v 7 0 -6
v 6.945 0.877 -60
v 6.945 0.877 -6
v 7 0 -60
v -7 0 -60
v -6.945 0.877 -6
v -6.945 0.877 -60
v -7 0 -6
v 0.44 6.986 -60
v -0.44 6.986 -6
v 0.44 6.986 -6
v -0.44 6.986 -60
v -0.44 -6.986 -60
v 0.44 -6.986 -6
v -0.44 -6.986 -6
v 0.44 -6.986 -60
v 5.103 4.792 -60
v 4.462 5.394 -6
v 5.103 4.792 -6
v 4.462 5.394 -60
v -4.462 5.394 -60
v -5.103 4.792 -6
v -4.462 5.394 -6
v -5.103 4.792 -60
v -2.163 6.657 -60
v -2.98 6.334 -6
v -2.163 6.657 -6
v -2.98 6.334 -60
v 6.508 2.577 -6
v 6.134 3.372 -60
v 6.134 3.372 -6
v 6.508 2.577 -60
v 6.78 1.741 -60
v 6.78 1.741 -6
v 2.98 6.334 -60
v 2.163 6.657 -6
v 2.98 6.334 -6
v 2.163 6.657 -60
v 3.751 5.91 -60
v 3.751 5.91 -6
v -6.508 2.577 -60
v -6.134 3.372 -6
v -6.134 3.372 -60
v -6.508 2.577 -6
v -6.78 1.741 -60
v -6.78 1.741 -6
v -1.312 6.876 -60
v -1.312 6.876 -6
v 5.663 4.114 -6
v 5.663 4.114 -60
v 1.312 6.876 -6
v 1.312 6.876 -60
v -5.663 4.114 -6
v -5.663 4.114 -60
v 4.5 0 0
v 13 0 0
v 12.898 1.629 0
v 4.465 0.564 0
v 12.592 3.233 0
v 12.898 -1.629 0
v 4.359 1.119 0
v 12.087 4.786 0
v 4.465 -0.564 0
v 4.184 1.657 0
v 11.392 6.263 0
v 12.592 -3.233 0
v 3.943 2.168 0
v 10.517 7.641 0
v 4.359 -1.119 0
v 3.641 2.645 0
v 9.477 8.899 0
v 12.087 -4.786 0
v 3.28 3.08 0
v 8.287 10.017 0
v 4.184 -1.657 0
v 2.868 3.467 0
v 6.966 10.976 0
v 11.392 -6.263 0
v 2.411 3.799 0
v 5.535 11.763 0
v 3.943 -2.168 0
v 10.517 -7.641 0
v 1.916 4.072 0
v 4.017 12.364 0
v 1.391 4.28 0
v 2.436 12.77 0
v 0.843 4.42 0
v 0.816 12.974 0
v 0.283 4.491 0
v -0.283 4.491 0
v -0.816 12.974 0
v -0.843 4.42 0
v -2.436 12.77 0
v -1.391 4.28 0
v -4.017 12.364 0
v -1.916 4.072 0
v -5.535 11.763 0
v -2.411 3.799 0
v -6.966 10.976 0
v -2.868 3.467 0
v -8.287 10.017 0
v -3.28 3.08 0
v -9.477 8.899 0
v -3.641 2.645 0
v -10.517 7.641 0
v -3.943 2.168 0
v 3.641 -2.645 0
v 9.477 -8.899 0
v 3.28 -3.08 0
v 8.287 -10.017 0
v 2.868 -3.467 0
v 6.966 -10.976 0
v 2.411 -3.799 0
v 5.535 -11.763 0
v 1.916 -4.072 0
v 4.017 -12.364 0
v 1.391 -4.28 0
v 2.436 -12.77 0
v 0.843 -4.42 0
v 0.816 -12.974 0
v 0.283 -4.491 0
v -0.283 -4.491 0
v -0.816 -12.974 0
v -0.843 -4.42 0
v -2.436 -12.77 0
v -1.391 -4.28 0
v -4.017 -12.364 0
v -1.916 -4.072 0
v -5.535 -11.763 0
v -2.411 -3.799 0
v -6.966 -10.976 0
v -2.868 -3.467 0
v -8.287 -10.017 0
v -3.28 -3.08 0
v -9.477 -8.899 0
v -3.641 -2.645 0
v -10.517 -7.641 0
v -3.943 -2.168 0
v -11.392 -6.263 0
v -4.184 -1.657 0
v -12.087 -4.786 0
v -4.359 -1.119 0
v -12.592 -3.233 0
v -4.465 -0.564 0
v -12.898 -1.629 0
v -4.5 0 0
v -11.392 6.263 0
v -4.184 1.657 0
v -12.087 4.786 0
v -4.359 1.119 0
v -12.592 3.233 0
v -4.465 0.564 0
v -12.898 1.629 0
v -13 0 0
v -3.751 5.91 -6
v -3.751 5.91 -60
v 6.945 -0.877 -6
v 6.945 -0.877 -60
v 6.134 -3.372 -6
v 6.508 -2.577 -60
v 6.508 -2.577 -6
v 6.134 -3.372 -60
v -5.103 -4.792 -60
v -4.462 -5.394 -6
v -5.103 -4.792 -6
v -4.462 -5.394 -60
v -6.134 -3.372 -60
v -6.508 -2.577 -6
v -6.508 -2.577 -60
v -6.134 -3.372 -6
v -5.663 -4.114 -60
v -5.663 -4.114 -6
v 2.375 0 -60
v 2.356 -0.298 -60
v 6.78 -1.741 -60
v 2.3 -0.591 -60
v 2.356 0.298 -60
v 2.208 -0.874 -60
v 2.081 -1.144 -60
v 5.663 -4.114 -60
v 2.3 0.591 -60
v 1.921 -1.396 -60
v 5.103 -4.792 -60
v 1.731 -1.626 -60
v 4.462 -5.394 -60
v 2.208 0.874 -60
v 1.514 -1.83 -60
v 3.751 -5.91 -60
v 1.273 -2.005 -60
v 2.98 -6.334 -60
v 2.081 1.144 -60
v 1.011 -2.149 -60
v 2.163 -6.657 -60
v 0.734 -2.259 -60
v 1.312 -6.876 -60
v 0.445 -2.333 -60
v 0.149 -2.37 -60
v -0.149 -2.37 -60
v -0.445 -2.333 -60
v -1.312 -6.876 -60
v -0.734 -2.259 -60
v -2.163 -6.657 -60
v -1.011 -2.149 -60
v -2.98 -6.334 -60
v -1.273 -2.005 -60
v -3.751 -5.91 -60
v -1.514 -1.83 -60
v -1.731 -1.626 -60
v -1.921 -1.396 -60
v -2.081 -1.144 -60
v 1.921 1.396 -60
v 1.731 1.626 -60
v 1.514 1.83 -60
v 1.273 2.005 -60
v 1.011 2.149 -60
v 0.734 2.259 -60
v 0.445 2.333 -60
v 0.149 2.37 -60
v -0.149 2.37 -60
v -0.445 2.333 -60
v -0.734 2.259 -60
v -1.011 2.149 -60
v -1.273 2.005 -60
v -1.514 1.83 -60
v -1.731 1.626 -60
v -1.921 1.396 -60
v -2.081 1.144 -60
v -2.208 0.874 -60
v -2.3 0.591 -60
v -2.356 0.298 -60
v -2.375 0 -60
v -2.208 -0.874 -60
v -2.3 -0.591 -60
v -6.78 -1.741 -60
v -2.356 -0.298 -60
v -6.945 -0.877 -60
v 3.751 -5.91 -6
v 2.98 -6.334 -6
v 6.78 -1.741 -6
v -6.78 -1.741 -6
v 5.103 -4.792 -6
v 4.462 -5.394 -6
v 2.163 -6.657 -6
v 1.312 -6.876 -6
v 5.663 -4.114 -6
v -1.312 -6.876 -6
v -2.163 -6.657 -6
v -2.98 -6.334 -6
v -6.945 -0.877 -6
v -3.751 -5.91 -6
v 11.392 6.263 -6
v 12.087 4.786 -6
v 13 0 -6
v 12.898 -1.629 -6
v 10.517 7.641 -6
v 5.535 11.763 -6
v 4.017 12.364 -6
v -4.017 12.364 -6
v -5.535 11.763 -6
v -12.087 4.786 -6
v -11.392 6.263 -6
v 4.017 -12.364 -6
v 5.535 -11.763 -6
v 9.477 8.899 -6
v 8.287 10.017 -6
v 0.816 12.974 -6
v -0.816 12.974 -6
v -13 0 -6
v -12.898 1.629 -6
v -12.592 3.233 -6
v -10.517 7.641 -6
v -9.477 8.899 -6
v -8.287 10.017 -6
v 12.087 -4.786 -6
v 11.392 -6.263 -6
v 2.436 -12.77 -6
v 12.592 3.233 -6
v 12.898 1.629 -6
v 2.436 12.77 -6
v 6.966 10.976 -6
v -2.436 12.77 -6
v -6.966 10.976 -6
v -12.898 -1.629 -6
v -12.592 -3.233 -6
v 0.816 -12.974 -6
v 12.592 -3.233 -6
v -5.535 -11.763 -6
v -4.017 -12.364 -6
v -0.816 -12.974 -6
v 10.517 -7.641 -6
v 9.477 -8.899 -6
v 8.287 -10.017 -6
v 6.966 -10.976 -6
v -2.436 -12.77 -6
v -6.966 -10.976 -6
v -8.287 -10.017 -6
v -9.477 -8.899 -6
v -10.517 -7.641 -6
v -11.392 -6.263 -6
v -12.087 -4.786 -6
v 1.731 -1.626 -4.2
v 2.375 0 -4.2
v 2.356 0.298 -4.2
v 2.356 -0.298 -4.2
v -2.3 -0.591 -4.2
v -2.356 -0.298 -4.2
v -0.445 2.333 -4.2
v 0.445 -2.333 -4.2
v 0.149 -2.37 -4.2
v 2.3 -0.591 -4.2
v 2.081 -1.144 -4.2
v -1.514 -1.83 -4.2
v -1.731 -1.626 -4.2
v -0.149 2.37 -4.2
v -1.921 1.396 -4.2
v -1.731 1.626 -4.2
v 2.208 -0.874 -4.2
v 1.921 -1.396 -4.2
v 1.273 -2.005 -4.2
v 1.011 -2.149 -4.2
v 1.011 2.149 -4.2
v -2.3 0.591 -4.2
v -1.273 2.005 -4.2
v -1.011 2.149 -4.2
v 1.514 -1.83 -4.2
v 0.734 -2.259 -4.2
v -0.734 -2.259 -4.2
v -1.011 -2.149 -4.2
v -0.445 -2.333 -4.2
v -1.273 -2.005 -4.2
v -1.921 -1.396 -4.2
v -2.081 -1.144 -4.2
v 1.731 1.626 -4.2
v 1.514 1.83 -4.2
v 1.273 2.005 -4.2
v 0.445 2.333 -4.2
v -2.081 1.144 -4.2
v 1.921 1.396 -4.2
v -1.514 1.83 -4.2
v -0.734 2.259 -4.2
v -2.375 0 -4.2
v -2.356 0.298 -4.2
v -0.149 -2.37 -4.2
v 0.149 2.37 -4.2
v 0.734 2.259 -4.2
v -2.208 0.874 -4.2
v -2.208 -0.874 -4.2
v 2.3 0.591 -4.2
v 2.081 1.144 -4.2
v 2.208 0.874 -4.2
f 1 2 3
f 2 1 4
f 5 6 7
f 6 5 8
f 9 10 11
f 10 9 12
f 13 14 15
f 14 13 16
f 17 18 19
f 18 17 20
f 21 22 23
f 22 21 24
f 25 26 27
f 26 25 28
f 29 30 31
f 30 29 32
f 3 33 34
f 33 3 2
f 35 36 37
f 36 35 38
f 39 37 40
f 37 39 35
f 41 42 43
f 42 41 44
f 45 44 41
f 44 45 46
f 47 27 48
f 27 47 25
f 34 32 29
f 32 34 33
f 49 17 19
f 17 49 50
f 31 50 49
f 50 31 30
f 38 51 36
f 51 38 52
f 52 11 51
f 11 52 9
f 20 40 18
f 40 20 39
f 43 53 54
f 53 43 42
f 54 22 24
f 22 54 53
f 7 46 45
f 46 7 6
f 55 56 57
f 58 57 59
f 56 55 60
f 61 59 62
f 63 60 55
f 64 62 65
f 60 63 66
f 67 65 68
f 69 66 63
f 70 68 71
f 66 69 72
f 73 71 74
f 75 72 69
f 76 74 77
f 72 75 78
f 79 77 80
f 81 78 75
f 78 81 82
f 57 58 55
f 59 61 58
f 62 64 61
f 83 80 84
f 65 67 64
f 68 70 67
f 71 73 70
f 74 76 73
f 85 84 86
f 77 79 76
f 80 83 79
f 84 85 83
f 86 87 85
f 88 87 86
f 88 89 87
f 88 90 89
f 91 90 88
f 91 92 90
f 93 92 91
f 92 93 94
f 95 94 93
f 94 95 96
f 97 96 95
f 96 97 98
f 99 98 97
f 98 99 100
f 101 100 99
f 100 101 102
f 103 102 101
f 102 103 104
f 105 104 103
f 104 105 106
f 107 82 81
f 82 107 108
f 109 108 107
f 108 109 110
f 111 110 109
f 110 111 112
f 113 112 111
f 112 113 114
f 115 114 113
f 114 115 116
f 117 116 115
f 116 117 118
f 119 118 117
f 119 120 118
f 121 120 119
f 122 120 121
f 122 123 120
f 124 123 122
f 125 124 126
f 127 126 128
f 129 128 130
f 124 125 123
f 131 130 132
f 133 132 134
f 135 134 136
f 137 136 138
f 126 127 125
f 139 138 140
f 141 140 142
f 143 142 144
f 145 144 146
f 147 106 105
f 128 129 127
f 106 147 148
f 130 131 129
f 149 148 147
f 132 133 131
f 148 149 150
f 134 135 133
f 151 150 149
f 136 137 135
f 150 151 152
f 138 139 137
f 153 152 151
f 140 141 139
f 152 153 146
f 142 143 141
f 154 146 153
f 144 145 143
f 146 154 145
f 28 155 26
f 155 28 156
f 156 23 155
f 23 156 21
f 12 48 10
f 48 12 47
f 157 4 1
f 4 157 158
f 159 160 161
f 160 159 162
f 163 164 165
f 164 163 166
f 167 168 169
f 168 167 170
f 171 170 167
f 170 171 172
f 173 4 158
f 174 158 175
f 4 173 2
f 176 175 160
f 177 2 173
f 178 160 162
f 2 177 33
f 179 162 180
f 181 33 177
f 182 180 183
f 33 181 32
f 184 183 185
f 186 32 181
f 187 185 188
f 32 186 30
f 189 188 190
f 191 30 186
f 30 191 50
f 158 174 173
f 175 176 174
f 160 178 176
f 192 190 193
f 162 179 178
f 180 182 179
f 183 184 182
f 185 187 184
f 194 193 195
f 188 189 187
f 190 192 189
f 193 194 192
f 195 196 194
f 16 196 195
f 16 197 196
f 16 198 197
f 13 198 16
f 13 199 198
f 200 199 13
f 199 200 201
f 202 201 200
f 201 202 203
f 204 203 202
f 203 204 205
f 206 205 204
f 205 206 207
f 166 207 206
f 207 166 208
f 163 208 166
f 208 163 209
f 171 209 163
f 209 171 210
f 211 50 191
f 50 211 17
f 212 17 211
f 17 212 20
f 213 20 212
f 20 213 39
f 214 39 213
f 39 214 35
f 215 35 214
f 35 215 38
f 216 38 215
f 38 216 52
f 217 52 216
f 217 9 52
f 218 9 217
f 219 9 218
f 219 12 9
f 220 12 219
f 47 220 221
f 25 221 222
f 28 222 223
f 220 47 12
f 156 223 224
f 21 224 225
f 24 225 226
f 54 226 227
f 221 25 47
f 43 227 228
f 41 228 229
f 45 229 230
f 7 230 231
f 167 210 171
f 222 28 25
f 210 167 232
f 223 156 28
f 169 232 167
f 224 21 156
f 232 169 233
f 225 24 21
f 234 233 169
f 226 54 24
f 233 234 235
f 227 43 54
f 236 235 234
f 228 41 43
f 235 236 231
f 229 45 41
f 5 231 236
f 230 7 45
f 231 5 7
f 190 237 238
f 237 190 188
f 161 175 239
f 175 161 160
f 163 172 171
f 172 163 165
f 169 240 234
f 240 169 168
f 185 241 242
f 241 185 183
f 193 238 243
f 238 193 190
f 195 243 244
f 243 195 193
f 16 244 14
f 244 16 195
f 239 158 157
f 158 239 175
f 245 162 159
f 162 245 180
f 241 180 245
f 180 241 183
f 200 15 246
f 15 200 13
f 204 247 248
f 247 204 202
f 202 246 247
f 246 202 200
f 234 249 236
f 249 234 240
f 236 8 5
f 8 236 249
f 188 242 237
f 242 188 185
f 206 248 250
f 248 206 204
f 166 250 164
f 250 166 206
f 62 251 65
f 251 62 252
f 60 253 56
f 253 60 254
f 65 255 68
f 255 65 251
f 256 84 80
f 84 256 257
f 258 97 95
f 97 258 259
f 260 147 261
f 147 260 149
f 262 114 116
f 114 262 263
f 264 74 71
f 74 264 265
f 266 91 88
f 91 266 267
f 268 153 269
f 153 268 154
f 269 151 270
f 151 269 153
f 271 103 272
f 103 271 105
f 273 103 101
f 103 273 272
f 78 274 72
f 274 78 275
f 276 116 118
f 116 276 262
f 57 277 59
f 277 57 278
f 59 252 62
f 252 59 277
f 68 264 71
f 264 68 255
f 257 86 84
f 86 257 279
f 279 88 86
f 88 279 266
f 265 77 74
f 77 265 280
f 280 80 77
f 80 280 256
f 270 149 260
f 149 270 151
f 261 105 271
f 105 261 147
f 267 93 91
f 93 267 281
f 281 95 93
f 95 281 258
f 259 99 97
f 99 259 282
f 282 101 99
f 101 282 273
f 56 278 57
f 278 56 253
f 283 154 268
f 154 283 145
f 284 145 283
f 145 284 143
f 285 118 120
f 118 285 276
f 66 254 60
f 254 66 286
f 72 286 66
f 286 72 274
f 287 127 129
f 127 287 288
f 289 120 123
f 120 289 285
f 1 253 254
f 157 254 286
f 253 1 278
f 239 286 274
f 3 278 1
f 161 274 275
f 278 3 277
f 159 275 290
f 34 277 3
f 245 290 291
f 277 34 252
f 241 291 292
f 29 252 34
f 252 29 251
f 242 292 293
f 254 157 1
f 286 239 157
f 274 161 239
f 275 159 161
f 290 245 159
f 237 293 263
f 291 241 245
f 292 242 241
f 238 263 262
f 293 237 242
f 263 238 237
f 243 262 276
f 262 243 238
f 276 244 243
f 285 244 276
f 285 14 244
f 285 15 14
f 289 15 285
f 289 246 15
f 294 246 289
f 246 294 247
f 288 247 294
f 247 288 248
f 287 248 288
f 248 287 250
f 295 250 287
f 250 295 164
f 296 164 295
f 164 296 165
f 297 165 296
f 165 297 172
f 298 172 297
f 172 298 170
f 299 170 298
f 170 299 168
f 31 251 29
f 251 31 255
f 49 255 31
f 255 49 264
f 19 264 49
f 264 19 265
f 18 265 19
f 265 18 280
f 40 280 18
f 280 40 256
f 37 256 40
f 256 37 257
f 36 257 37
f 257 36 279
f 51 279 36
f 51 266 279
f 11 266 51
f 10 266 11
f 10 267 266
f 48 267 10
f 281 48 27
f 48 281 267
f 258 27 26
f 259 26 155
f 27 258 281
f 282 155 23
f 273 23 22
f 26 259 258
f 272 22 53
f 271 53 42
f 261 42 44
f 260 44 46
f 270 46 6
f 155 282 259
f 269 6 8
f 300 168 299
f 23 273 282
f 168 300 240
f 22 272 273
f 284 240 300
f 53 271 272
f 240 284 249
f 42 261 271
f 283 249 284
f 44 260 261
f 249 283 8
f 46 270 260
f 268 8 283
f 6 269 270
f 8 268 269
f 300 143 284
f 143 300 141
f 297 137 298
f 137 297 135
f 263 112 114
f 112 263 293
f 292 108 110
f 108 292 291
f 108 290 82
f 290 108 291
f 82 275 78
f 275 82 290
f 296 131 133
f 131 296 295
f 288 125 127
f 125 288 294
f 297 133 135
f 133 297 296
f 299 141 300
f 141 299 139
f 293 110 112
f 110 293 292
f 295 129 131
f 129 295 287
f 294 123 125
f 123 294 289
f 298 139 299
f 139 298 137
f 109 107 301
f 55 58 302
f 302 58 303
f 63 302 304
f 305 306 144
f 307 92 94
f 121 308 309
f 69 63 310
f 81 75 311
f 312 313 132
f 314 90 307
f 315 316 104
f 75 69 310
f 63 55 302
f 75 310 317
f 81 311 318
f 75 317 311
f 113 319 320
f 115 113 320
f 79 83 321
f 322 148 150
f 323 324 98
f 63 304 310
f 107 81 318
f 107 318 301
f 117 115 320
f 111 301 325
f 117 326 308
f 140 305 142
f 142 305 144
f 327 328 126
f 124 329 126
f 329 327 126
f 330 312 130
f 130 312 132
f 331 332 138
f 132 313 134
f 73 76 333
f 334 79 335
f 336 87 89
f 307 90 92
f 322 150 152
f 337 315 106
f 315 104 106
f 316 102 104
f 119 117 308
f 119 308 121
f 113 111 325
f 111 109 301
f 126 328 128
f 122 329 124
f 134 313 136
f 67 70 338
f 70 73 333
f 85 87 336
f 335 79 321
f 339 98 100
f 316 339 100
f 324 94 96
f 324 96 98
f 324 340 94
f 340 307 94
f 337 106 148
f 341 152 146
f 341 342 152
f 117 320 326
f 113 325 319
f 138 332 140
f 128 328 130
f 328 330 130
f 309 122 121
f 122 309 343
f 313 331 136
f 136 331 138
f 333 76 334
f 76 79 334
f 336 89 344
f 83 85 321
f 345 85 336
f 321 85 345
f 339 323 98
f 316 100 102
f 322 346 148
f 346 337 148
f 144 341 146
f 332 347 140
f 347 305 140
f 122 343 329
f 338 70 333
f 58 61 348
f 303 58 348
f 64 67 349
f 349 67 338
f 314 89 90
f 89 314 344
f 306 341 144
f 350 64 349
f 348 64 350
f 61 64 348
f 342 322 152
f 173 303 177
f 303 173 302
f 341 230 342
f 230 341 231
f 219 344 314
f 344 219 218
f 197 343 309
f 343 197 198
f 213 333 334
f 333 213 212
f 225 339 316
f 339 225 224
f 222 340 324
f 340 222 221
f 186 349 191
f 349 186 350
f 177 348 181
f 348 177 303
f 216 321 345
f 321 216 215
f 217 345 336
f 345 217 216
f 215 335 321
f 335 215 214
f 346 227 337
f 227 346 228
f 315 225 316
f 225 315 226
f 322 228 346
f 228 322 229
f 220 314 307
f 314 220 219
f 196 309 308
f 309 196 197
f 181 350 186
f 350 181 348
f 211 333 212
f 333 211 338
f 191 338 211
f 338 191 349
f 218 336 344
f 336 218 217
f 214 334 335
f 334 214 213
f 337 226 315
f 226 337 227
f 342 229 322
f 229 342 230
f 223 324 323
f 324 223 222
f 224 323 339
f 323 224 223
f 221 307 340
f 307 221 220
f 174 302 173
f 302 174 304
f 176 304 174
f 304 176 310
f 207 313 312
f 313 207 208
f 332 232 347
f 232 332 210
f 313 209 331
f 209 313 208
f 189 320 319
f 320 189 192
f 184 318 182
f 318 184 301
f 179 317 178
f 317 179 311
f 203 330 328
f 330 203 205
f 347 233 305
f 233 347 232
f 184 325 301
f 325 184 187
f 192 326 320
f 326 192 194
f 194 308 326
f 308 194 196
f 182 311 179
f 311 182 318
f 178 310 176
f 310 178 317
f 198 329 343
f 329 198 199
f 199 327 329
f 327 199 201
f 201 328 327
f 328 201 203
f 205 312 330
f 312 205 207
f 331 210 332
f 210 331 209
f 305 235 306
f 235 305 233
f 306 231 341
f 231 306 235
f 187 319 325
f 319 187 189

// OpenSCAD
$fn = 50;


difference() {
	union() {
		translate(v = [0, 0, -60.0000000000]) {
			cylinder(h = 60, r = 7.0000000000);
		}
		translate(v = [0, 0, -6.0000000000]) {
			cylinder(h = 6, r = 13.0000000000);
		}
	}
	union() {
		translate(v = [0, 0, 0]) {
			rotate(a = [0, 0, 0]) {
				difference() {
					union() {
						#translate(v = [0, 0, -60.0000000000]) {
							cylinder(h = 60, r = 2.2500000000);
						}
						#translate(v = [0, 0, -4.2000000000]) {
							cylinder(h = 4.2000000000, r1 = 2.3750000000, r2 = 4.5000000000);
						}
						#translate(v = [0, 0, -60.0000000000]) {
							cylinder(h = 60, r = 2.3750000000);
						}
						#translate(v = [0, 0, -60.0000000000]) {
							cylinder(h = 60, r = 2.2500000000);
						}
					}
					union();
				}
			}
		}
	}
}
